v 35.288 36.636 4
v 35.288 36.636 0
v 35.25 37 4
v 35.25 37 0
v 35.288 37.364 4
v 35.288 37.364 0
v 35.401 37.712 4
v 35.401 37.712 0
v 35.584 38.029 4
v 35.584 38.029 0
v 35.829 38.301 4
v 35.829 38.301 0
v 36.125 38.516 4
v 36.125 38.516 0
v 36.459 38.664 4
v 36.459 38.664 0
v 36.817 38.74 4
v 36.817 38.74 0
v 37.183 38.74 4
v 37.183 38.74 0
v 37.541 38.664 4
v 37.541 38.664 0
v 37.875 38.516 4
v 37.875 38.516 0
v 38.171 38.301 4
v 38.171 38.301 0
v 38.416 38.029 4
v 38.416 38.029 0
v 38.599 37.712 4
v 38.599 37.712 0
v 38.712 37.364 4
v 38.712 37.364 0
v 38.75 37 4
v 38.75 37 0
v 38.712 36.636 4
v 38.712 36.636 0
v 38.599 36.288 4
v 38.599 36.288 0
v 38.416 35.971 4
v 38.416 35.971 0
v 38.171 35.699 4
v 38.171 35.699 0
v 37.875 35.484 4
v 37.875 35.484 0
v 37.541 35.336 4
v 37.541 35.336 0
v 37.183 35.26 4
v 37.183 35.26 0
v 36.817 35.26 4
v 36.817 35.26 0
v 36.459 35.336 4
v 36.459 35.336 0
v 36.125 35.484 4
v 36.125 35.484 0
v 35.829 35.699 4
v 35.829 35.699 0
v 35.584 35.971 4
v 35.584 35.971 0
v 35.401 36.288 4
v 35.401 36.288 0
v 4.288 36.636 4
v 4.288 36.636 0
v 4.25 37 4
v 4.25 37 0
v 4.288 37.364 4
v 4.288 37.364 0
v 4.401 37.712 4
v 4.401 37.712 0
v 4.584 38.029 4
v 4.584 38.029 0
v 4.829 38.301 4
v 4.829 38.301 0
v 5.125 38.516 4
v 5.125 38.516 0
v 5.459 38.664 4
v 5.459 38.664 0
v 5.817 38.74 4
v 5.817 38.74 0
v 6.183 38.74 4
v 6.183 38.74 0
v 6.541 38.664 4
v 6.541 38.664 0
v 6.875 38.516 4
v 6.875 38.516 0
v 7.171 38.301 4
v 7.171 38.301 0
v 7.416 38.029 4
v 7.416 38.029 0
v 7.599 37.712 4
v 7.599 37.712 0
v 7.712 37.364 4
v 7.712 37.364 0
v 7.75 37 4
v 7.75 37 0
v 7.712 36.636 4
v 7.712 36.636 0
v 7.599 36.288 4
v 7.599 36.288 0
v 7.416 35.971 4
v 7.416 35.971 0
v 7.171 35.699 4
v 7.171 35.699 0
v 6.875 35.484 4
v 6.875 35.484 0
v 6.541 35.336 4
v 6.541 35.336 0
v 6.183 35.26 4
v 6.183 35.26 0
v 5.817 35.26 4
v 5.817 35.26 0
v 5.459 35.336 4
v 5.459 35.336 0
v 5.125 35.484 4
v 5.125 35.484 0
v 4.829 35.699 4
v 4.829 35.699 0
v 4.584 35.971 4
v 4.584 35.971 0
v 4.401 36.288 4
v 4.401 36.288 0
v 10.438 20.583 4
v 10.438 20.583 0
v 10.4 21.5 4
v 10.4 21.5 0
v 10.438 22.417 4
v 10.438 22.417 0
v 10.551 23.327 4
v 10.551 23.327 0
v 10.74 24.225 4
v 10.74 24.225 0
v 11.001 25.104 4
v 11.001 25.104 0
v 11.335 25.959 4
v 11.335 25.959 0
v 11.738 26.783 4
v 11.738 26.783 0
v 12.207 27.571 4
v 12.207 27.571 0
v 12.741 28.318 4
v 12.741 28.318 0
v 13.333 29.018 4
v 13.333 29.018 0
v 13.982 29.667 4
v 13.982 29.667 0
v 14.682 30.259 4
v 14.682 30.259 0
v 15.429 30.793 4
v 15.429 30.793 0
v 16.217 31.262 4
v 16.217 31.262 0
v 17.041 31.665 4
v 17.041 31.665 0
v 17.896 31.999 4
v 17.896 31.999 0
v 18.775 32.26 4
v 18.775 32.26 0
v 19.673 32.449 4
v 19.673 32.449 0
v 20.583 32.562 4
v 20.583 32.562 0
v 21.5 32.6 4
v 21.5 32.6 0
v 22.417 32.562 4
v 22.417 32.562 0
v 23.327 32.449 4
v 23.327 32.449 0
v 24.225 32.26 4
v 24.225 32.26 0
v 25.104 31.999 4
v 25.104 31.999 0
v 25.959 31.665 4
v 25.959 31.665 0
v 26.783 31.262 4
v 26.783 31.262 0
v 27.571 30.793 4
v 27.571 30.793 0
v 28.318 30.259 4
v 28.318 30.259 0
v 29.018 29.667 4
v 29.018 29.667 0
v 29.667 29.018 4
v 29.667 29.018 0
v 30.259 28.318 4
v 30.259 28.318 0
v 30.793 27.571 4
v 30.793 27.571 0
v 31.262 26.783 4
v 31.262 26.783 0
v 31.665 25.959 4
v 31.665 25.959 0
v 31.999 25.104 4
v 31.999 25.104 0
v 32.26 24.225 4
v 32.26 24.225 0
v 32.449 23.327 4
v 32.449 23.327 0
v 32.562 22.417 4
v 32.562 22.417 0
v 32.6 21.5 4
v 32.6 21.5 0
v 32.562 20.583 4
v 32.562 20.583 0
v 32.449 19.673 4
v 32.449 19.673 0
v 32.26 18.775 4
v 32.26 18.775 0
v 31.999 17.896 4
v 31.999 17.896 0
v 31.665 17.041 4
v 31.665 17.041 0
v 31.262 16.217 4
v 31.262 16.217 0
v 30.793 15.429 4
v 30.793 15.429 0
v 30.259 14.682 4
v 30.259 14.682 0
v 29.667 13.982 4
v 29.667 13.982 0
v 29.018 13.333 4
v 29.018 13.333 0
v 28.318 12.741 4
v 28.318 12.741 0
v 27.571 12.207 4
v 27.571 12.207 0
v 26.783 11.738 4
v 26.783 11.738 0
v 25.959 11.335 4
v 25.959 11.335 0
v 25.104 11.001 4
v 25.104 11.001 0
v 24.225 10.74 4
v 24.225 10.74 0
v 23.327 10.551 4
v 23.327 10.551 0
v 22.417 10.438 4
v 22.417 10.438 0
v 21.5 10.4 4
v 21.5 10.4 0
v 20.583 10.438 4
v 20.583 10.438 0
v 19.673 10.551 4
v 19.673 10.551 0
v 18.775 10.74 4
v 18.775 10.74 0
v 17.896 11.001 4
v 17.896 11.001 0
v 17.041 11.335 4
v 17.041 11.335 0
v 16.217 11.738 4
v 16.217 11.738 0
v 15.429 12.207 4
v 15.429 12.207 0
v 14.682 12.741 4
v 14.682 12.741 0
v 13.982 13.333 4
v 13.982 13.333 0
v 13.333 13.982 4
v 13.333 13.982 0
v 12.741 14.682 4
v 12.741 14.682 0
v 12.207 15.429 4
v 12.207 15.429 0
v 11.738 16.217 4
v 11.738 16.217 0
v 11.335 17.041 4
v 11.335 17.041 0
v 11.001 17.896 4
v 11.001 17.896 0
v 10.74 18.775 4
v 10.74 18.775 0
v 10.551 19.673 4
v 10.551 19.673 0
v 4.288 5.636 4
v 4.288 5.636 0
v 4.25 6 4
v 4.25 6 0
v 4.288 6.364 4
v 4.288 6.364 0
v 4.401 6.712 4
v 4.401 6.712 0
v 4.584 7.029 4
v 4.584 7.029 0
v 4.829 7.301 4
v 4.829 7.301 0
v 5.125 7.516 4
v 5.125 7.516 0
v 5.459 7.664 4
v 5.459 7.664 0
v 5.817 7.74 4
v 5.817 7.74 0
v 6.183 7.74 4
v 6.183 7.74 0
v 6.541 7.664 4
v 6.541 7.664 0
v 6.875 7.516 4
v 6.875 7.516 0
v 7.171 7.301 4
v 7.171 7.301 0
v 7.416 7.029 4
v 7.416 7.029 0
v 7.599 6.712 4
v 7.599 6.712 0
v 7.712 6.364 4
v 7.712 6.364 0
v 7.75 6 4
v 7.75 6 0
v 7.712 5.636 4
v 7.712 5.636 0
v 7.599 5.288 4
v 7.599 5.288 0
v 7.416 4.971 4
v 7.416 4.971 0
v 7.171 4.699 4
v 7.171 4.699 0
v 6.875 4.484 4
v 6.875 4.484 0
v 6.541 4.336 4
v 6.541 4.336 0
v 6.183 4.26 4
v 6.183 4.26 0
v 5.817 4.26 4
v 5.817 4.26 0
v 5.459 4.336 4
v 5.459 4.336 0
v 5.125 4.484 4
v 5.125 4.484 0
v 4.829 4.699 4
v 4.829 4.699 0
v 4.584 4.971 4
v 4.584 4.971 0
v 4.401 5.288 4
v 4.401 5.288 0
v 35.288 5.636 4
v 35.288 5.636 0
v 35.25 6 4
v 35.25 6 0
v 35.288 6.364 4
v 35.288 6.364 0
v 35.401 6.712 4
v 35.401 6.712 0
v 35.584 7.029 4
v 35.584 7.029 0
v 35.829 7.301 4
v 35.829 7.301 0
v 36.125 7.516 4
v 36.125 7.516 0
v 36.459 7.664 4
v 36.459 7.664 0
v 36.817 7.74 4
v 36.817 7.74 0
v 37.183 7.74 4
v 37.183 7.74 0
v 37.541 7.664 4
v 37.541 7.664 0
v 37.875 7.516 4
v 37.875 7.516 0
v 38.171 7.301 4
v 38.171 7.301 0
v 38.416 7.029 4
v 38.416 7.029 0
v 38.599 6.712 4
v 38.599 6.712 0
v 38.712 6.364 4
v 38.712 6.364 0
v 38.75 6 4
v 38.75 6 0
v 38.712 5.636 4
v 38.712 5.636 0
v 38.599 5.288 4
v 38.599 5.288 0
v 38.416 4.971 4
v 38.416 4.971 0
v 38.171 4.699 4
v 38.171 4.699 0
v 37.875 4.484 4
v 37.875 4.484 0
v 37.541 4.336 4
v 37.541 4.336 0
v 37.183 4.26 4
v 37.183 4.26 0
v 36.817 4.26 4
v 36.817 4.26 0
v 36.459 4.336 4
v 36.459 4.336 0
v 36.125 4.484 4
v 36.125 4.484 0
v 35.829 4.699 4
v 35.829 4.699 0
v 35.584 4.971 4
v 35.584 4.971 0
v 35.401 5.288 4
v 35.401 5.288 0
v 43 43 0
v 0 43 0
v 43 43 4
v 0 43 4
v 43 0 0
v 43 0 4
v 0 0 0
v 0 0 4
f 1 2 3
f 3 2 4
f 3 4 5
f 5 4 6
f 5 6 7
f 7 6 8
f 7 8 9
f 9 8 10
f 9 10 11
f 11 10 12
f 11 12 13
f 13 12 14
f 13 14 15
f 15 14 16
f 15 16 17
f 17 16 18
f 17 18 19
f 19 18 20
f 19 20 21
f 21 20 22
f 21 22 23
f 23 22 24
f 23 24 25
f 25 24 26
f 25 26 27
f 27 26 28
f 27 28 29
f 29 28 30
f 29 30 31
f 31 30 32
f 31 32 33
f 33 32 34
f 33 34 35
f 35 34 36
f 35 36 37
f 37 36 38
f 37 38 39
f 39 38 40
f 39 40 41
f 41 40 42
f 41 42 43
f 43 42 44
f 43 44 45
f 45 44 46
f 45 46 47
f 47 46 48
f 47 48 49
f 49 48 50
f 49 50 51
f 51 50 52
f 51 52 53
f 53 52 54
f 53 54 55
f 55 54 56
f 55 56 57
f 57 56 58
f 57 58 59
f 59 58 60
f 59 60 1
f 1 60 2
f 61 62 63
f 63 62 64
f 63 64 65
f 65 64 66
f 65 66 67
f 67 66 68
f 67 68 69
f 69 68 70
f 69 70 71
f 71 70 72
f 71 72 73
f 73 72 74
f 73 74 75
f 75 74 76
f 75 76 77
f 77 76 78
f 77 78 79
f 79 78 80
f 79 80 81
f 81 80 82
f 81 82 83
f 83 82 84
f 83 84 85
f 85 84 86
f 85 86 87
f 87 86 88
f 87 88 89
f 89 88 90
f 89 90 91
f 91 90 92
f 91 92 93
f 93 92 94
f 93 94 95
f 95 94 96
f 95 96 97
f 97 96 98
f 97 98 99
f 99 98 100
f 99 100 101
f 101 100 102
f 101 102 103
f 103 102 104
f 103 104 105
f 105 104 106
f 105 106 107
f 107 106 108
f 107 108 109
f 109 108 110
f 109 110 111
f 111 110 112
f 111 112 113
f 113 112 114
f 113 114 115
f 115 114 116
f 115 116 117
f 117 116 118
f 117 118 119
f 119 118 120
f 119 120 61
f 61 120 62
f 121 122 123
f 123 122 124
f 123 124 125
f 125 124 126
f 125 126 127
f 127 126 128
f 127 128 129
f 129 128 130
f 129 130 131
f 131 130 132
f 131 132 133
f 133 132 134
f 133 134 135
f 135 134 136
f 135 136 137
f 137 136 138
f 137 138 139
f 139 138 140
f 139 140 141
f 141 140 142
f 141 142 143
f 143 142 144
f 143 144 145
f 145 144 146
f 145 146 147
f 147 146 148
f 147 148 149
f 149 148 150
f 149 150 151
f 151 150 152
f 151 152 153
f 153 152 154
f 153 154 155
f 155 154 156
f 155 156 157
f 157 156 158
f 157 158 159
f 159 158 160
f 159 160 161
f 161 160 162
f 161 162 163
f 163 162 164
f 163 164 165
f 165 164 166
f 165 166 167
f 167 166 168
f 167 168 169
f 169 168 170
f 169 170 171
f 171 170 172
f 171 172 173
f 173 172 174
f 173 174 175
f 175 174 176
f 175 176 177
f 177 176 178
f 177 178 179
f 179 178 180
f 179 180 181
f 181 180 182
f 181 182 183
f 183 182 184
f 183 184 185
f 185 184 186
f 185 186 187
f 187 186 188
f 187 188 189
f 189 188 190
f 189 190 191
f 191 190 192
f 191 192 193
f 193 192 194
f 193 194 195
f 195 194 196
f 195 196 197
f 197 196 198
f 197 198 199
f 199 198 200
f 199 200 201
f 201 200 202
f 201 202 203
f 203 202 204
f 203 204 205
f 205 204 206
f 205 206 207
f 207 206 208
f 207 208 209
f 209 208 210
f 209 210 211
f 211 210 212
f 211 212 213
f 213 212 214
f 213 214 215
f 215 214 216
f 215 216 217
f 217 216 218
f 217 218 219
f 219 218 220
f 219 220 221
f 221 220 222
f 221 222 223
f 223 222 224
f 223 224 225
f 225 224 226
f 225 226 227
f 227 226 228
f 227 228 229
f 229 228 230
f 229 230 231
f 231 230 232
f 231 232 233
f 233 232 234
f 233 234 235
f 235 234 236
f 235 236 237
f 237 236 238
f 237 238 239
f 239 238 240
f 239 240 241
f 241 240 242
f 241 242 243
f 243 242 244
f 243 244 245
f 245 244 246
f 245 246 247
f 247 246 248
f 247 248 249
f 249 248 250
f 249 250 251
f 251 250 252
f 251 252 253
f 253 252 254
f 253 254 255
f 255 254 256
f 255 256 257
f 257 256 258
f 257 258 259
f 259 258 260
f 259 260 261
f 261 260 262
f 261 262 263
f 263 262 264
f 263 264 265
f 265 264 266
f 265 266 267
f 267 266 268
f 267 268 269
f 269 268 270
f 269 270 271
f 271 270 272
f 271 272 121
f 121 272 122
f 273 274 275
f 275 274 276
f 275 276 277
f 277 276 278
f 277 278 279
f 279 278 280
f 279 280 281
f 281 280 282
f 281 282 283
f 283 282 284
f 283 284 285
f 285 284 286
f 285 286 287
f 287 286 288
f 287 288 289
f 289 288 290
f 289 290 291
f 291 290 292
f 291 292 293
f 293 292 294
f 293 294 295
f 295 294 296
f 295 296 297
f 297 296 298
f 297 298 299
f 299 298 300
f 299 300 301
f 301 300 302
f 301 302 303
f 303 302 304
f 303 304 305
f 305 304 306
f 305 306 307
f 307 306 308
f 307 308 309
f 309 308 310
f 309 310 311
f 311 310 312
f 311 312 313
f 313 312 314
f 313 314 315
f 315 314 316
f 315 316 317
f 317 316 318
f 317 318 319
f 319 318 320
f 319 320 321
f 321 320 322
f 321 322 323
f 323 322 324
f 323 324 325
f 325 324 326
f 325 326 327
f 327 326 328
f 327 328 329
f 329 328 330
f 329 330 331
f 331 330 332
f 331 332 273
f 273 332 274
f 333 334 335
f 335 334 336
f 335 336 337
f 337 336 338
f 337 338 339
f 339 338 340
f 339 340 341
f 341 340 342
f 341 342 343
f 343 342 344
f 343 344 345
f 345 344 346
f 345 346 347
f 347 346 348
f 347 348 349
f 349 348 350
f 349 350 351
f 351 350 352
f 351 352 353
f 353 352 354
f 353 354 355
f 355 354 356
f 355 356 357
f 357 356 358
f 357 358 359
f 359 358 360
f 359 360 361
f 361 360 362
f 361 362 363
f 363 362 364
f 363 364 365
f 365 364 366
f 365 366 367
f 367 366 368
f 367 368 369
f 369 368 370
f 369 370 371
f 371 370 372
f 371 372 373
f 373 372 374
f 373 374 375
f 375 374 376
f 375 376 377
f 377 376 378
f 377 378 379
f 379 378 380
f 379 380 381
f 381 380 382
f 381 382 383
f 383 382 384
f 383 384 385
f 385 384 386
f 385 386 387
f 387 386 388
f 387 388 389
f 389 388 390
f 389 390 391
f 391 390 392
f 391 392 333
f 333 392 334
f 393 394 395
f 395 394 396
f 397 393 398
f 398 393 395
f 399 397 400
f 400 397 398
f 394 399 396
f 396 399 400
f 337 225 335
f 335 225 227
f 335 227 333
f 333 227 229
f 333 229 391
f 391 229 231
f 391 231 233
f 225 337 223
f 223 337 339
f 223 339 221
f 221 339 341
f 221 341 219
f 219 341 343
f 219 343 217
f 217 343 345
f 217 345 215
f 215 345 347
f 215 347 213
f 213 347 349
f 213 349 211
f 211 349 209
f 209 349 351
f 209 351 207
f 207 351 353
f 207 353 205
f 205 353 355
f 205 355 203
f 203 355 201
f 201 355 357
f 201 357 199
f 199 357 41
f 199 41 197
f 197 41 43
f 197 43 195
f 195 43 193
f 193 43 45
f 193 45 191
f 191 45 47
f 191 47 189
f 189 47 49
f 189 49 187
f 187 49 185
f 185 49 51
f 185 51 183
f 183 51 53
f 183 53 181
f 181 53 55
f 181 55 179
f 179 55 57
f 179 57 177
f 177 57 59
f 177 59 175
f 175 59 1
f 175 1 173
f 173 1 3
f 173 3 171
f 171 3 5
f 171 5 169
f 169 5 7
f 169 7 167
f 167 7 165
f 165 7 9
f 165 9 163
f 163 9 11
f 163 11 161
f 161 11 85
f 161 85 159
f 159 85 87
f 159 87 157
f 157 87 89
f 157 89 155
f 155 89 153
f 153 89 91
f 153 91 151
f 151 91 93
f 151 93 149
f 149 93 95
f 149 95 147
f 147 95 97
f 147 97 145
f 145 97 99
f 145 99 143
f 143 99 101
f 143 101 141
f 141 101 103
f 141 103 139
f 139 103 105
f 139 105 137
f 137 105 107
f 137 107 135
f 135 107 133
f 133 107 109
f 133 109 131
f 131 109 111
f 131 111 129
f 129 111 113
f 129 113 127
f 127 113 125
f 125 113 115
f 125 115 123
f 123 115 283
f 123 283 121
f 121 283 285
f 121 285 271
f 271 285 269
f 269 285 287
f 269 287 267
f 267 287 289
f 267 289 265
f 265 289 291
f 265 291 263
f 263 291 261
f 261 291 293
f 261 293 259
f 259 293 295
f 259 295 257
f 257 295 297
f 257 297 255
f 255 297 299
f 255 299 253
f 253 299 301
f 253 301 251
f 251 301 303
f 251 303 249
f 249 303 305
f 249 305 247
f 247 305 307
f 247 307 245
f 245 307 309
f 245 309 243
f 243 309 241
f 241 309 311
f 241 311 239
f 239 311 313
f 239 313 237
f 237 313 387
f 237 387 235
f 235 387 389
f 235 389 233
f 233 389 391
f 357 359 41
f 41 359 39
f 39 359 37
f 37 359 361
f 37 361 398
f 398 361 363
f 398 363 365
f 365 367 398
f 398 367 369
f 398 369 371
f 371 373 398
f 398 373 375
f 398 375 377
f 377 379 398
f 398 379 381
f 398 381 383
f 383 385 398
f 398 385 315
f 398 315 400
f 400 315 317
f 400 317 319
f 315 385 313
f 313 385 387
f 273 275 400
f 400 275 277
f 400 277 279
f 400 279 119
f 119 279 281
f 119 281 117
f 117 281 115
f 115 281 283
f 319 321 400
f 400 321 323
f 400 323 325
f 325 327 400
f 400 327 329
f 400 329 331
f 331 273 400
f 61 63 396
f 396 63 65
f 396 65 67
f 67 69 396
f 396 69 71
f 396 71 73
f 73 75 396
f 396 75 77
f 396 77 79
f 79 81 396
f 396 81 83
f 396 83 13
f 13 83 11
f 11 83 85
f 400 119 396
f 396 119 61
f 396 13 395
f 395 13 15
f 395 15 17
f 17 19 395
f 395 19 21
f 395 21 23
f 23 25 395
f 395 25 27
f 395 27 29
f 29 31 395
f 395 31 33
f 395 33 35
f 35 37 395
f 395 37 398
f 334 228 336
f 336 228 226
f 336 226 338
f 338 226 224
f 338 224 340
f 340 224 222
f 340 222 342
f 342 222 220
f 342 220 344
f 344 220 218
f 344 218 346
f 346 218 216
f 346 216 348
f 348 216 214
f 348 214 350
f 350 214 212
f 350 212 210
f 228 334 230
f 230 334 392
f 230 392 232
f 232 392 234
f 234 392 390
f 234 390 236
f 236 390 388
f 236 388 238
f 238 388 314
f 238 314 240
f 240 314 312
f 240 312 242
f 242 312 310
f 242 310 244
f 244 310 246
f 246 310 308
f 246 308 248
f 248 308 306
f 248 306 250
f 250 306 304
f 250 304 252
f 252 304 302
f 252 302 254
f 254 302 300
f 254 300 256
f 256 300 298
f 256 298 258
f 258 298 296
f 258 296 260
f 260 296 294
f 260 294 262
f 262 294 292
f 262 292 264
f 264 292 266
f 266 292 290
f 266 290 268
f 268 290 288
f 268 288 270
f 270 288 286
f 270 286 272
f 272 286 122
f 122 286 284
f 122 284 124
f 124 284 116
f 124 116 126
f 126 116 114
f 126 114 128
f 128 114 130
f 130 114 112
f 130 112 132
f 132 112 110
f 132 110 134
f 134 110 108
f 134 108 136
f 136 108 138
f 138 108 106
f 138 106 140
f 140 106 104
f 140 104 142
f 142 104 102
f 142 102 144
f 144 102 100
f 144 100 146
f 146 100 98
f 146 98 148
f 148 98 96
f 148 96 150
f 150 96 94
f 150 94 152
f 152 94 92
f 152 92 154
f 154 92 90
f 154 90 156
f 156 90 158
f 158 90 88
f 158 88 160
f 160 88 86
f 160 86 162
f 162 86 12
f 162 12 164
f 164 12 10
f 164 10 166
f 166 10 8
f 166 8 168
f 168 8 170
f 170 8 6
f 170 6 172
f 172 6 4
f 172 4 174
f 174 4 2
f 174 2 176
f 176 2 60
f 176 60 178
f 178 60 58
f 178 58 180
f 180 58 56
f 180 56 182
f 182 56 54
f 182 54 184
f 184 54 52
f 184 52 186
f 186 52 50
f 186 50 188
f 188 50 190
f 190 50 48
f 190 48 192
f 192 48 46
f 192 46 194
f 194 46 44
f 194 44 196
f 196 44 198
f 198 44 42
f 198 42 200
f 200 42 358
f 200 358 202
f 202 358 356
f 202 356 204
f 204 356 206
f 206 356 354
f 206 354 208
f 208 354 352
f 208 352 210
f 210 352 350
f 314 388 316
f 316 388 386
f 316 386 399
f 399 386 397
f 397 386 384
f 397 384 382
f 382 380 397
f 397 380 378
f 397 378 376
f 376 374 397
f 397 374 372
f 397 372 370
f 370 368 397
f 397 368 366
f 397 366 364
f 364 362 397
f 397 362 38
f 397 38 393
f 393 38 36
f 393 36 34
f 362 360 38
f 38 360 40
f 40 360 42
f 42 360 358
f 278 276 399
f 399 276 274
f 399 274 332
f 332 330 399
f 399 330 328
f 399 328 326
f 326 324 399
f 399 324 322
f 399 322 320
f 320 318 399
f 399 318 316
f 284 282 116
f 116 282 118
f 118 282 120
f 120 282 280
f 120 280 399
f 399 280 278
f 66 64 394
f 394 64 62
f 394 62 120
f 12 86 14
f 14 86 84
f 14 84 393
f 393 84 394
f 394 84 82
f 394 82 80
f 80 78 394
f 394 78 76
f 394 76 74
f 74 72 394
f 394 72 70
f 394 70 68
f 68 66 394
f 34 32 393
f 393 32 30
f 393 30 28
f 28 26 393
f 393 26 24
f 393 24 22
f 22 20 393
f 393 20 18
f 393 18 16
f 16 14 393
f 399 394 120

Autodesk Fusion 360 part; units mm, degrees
sketch "Szkic1" plane through (0, 0, 0) normal (0, 0, 1) x (1, 0, 0)
  line L0 (0, 0) -> (43, 0)
  line L1 (43, 0) -> (43, 43)
  line L2 (43, 43) -> (0, 43)
  line L3 (0, 43) -> (0, 0)
  line L4 (37, 6) -> (6, 37) construction
  line L5 (6, 6) -> (37, 37) construction
  circle A0 centre (6, 37) radius 1.75
  circle A1 centre (37, 37) radius 1.75
  circle A2 centre (37, 6) radius 1.75
  circle A3 centre (6, 6) radius 1.75
  circle A4 centre (21.5, 21.5) radius 11.1
  point P0 (21.5, 21.5)
  dimension "d1" = 43
  dimension "d2" = 43
  dimension "d3" = 31
  dimension "d4" = 31
  dimension "d5" = 3.5
  dimension "d6" = 3.5
  dimension "d7" = 3.5
  dimension "d8" = 3.5
  dimension "d9" = 22.2
extrude "Wyciągnięcie proste1" add sketch "Szkic1" along normal blind 4
